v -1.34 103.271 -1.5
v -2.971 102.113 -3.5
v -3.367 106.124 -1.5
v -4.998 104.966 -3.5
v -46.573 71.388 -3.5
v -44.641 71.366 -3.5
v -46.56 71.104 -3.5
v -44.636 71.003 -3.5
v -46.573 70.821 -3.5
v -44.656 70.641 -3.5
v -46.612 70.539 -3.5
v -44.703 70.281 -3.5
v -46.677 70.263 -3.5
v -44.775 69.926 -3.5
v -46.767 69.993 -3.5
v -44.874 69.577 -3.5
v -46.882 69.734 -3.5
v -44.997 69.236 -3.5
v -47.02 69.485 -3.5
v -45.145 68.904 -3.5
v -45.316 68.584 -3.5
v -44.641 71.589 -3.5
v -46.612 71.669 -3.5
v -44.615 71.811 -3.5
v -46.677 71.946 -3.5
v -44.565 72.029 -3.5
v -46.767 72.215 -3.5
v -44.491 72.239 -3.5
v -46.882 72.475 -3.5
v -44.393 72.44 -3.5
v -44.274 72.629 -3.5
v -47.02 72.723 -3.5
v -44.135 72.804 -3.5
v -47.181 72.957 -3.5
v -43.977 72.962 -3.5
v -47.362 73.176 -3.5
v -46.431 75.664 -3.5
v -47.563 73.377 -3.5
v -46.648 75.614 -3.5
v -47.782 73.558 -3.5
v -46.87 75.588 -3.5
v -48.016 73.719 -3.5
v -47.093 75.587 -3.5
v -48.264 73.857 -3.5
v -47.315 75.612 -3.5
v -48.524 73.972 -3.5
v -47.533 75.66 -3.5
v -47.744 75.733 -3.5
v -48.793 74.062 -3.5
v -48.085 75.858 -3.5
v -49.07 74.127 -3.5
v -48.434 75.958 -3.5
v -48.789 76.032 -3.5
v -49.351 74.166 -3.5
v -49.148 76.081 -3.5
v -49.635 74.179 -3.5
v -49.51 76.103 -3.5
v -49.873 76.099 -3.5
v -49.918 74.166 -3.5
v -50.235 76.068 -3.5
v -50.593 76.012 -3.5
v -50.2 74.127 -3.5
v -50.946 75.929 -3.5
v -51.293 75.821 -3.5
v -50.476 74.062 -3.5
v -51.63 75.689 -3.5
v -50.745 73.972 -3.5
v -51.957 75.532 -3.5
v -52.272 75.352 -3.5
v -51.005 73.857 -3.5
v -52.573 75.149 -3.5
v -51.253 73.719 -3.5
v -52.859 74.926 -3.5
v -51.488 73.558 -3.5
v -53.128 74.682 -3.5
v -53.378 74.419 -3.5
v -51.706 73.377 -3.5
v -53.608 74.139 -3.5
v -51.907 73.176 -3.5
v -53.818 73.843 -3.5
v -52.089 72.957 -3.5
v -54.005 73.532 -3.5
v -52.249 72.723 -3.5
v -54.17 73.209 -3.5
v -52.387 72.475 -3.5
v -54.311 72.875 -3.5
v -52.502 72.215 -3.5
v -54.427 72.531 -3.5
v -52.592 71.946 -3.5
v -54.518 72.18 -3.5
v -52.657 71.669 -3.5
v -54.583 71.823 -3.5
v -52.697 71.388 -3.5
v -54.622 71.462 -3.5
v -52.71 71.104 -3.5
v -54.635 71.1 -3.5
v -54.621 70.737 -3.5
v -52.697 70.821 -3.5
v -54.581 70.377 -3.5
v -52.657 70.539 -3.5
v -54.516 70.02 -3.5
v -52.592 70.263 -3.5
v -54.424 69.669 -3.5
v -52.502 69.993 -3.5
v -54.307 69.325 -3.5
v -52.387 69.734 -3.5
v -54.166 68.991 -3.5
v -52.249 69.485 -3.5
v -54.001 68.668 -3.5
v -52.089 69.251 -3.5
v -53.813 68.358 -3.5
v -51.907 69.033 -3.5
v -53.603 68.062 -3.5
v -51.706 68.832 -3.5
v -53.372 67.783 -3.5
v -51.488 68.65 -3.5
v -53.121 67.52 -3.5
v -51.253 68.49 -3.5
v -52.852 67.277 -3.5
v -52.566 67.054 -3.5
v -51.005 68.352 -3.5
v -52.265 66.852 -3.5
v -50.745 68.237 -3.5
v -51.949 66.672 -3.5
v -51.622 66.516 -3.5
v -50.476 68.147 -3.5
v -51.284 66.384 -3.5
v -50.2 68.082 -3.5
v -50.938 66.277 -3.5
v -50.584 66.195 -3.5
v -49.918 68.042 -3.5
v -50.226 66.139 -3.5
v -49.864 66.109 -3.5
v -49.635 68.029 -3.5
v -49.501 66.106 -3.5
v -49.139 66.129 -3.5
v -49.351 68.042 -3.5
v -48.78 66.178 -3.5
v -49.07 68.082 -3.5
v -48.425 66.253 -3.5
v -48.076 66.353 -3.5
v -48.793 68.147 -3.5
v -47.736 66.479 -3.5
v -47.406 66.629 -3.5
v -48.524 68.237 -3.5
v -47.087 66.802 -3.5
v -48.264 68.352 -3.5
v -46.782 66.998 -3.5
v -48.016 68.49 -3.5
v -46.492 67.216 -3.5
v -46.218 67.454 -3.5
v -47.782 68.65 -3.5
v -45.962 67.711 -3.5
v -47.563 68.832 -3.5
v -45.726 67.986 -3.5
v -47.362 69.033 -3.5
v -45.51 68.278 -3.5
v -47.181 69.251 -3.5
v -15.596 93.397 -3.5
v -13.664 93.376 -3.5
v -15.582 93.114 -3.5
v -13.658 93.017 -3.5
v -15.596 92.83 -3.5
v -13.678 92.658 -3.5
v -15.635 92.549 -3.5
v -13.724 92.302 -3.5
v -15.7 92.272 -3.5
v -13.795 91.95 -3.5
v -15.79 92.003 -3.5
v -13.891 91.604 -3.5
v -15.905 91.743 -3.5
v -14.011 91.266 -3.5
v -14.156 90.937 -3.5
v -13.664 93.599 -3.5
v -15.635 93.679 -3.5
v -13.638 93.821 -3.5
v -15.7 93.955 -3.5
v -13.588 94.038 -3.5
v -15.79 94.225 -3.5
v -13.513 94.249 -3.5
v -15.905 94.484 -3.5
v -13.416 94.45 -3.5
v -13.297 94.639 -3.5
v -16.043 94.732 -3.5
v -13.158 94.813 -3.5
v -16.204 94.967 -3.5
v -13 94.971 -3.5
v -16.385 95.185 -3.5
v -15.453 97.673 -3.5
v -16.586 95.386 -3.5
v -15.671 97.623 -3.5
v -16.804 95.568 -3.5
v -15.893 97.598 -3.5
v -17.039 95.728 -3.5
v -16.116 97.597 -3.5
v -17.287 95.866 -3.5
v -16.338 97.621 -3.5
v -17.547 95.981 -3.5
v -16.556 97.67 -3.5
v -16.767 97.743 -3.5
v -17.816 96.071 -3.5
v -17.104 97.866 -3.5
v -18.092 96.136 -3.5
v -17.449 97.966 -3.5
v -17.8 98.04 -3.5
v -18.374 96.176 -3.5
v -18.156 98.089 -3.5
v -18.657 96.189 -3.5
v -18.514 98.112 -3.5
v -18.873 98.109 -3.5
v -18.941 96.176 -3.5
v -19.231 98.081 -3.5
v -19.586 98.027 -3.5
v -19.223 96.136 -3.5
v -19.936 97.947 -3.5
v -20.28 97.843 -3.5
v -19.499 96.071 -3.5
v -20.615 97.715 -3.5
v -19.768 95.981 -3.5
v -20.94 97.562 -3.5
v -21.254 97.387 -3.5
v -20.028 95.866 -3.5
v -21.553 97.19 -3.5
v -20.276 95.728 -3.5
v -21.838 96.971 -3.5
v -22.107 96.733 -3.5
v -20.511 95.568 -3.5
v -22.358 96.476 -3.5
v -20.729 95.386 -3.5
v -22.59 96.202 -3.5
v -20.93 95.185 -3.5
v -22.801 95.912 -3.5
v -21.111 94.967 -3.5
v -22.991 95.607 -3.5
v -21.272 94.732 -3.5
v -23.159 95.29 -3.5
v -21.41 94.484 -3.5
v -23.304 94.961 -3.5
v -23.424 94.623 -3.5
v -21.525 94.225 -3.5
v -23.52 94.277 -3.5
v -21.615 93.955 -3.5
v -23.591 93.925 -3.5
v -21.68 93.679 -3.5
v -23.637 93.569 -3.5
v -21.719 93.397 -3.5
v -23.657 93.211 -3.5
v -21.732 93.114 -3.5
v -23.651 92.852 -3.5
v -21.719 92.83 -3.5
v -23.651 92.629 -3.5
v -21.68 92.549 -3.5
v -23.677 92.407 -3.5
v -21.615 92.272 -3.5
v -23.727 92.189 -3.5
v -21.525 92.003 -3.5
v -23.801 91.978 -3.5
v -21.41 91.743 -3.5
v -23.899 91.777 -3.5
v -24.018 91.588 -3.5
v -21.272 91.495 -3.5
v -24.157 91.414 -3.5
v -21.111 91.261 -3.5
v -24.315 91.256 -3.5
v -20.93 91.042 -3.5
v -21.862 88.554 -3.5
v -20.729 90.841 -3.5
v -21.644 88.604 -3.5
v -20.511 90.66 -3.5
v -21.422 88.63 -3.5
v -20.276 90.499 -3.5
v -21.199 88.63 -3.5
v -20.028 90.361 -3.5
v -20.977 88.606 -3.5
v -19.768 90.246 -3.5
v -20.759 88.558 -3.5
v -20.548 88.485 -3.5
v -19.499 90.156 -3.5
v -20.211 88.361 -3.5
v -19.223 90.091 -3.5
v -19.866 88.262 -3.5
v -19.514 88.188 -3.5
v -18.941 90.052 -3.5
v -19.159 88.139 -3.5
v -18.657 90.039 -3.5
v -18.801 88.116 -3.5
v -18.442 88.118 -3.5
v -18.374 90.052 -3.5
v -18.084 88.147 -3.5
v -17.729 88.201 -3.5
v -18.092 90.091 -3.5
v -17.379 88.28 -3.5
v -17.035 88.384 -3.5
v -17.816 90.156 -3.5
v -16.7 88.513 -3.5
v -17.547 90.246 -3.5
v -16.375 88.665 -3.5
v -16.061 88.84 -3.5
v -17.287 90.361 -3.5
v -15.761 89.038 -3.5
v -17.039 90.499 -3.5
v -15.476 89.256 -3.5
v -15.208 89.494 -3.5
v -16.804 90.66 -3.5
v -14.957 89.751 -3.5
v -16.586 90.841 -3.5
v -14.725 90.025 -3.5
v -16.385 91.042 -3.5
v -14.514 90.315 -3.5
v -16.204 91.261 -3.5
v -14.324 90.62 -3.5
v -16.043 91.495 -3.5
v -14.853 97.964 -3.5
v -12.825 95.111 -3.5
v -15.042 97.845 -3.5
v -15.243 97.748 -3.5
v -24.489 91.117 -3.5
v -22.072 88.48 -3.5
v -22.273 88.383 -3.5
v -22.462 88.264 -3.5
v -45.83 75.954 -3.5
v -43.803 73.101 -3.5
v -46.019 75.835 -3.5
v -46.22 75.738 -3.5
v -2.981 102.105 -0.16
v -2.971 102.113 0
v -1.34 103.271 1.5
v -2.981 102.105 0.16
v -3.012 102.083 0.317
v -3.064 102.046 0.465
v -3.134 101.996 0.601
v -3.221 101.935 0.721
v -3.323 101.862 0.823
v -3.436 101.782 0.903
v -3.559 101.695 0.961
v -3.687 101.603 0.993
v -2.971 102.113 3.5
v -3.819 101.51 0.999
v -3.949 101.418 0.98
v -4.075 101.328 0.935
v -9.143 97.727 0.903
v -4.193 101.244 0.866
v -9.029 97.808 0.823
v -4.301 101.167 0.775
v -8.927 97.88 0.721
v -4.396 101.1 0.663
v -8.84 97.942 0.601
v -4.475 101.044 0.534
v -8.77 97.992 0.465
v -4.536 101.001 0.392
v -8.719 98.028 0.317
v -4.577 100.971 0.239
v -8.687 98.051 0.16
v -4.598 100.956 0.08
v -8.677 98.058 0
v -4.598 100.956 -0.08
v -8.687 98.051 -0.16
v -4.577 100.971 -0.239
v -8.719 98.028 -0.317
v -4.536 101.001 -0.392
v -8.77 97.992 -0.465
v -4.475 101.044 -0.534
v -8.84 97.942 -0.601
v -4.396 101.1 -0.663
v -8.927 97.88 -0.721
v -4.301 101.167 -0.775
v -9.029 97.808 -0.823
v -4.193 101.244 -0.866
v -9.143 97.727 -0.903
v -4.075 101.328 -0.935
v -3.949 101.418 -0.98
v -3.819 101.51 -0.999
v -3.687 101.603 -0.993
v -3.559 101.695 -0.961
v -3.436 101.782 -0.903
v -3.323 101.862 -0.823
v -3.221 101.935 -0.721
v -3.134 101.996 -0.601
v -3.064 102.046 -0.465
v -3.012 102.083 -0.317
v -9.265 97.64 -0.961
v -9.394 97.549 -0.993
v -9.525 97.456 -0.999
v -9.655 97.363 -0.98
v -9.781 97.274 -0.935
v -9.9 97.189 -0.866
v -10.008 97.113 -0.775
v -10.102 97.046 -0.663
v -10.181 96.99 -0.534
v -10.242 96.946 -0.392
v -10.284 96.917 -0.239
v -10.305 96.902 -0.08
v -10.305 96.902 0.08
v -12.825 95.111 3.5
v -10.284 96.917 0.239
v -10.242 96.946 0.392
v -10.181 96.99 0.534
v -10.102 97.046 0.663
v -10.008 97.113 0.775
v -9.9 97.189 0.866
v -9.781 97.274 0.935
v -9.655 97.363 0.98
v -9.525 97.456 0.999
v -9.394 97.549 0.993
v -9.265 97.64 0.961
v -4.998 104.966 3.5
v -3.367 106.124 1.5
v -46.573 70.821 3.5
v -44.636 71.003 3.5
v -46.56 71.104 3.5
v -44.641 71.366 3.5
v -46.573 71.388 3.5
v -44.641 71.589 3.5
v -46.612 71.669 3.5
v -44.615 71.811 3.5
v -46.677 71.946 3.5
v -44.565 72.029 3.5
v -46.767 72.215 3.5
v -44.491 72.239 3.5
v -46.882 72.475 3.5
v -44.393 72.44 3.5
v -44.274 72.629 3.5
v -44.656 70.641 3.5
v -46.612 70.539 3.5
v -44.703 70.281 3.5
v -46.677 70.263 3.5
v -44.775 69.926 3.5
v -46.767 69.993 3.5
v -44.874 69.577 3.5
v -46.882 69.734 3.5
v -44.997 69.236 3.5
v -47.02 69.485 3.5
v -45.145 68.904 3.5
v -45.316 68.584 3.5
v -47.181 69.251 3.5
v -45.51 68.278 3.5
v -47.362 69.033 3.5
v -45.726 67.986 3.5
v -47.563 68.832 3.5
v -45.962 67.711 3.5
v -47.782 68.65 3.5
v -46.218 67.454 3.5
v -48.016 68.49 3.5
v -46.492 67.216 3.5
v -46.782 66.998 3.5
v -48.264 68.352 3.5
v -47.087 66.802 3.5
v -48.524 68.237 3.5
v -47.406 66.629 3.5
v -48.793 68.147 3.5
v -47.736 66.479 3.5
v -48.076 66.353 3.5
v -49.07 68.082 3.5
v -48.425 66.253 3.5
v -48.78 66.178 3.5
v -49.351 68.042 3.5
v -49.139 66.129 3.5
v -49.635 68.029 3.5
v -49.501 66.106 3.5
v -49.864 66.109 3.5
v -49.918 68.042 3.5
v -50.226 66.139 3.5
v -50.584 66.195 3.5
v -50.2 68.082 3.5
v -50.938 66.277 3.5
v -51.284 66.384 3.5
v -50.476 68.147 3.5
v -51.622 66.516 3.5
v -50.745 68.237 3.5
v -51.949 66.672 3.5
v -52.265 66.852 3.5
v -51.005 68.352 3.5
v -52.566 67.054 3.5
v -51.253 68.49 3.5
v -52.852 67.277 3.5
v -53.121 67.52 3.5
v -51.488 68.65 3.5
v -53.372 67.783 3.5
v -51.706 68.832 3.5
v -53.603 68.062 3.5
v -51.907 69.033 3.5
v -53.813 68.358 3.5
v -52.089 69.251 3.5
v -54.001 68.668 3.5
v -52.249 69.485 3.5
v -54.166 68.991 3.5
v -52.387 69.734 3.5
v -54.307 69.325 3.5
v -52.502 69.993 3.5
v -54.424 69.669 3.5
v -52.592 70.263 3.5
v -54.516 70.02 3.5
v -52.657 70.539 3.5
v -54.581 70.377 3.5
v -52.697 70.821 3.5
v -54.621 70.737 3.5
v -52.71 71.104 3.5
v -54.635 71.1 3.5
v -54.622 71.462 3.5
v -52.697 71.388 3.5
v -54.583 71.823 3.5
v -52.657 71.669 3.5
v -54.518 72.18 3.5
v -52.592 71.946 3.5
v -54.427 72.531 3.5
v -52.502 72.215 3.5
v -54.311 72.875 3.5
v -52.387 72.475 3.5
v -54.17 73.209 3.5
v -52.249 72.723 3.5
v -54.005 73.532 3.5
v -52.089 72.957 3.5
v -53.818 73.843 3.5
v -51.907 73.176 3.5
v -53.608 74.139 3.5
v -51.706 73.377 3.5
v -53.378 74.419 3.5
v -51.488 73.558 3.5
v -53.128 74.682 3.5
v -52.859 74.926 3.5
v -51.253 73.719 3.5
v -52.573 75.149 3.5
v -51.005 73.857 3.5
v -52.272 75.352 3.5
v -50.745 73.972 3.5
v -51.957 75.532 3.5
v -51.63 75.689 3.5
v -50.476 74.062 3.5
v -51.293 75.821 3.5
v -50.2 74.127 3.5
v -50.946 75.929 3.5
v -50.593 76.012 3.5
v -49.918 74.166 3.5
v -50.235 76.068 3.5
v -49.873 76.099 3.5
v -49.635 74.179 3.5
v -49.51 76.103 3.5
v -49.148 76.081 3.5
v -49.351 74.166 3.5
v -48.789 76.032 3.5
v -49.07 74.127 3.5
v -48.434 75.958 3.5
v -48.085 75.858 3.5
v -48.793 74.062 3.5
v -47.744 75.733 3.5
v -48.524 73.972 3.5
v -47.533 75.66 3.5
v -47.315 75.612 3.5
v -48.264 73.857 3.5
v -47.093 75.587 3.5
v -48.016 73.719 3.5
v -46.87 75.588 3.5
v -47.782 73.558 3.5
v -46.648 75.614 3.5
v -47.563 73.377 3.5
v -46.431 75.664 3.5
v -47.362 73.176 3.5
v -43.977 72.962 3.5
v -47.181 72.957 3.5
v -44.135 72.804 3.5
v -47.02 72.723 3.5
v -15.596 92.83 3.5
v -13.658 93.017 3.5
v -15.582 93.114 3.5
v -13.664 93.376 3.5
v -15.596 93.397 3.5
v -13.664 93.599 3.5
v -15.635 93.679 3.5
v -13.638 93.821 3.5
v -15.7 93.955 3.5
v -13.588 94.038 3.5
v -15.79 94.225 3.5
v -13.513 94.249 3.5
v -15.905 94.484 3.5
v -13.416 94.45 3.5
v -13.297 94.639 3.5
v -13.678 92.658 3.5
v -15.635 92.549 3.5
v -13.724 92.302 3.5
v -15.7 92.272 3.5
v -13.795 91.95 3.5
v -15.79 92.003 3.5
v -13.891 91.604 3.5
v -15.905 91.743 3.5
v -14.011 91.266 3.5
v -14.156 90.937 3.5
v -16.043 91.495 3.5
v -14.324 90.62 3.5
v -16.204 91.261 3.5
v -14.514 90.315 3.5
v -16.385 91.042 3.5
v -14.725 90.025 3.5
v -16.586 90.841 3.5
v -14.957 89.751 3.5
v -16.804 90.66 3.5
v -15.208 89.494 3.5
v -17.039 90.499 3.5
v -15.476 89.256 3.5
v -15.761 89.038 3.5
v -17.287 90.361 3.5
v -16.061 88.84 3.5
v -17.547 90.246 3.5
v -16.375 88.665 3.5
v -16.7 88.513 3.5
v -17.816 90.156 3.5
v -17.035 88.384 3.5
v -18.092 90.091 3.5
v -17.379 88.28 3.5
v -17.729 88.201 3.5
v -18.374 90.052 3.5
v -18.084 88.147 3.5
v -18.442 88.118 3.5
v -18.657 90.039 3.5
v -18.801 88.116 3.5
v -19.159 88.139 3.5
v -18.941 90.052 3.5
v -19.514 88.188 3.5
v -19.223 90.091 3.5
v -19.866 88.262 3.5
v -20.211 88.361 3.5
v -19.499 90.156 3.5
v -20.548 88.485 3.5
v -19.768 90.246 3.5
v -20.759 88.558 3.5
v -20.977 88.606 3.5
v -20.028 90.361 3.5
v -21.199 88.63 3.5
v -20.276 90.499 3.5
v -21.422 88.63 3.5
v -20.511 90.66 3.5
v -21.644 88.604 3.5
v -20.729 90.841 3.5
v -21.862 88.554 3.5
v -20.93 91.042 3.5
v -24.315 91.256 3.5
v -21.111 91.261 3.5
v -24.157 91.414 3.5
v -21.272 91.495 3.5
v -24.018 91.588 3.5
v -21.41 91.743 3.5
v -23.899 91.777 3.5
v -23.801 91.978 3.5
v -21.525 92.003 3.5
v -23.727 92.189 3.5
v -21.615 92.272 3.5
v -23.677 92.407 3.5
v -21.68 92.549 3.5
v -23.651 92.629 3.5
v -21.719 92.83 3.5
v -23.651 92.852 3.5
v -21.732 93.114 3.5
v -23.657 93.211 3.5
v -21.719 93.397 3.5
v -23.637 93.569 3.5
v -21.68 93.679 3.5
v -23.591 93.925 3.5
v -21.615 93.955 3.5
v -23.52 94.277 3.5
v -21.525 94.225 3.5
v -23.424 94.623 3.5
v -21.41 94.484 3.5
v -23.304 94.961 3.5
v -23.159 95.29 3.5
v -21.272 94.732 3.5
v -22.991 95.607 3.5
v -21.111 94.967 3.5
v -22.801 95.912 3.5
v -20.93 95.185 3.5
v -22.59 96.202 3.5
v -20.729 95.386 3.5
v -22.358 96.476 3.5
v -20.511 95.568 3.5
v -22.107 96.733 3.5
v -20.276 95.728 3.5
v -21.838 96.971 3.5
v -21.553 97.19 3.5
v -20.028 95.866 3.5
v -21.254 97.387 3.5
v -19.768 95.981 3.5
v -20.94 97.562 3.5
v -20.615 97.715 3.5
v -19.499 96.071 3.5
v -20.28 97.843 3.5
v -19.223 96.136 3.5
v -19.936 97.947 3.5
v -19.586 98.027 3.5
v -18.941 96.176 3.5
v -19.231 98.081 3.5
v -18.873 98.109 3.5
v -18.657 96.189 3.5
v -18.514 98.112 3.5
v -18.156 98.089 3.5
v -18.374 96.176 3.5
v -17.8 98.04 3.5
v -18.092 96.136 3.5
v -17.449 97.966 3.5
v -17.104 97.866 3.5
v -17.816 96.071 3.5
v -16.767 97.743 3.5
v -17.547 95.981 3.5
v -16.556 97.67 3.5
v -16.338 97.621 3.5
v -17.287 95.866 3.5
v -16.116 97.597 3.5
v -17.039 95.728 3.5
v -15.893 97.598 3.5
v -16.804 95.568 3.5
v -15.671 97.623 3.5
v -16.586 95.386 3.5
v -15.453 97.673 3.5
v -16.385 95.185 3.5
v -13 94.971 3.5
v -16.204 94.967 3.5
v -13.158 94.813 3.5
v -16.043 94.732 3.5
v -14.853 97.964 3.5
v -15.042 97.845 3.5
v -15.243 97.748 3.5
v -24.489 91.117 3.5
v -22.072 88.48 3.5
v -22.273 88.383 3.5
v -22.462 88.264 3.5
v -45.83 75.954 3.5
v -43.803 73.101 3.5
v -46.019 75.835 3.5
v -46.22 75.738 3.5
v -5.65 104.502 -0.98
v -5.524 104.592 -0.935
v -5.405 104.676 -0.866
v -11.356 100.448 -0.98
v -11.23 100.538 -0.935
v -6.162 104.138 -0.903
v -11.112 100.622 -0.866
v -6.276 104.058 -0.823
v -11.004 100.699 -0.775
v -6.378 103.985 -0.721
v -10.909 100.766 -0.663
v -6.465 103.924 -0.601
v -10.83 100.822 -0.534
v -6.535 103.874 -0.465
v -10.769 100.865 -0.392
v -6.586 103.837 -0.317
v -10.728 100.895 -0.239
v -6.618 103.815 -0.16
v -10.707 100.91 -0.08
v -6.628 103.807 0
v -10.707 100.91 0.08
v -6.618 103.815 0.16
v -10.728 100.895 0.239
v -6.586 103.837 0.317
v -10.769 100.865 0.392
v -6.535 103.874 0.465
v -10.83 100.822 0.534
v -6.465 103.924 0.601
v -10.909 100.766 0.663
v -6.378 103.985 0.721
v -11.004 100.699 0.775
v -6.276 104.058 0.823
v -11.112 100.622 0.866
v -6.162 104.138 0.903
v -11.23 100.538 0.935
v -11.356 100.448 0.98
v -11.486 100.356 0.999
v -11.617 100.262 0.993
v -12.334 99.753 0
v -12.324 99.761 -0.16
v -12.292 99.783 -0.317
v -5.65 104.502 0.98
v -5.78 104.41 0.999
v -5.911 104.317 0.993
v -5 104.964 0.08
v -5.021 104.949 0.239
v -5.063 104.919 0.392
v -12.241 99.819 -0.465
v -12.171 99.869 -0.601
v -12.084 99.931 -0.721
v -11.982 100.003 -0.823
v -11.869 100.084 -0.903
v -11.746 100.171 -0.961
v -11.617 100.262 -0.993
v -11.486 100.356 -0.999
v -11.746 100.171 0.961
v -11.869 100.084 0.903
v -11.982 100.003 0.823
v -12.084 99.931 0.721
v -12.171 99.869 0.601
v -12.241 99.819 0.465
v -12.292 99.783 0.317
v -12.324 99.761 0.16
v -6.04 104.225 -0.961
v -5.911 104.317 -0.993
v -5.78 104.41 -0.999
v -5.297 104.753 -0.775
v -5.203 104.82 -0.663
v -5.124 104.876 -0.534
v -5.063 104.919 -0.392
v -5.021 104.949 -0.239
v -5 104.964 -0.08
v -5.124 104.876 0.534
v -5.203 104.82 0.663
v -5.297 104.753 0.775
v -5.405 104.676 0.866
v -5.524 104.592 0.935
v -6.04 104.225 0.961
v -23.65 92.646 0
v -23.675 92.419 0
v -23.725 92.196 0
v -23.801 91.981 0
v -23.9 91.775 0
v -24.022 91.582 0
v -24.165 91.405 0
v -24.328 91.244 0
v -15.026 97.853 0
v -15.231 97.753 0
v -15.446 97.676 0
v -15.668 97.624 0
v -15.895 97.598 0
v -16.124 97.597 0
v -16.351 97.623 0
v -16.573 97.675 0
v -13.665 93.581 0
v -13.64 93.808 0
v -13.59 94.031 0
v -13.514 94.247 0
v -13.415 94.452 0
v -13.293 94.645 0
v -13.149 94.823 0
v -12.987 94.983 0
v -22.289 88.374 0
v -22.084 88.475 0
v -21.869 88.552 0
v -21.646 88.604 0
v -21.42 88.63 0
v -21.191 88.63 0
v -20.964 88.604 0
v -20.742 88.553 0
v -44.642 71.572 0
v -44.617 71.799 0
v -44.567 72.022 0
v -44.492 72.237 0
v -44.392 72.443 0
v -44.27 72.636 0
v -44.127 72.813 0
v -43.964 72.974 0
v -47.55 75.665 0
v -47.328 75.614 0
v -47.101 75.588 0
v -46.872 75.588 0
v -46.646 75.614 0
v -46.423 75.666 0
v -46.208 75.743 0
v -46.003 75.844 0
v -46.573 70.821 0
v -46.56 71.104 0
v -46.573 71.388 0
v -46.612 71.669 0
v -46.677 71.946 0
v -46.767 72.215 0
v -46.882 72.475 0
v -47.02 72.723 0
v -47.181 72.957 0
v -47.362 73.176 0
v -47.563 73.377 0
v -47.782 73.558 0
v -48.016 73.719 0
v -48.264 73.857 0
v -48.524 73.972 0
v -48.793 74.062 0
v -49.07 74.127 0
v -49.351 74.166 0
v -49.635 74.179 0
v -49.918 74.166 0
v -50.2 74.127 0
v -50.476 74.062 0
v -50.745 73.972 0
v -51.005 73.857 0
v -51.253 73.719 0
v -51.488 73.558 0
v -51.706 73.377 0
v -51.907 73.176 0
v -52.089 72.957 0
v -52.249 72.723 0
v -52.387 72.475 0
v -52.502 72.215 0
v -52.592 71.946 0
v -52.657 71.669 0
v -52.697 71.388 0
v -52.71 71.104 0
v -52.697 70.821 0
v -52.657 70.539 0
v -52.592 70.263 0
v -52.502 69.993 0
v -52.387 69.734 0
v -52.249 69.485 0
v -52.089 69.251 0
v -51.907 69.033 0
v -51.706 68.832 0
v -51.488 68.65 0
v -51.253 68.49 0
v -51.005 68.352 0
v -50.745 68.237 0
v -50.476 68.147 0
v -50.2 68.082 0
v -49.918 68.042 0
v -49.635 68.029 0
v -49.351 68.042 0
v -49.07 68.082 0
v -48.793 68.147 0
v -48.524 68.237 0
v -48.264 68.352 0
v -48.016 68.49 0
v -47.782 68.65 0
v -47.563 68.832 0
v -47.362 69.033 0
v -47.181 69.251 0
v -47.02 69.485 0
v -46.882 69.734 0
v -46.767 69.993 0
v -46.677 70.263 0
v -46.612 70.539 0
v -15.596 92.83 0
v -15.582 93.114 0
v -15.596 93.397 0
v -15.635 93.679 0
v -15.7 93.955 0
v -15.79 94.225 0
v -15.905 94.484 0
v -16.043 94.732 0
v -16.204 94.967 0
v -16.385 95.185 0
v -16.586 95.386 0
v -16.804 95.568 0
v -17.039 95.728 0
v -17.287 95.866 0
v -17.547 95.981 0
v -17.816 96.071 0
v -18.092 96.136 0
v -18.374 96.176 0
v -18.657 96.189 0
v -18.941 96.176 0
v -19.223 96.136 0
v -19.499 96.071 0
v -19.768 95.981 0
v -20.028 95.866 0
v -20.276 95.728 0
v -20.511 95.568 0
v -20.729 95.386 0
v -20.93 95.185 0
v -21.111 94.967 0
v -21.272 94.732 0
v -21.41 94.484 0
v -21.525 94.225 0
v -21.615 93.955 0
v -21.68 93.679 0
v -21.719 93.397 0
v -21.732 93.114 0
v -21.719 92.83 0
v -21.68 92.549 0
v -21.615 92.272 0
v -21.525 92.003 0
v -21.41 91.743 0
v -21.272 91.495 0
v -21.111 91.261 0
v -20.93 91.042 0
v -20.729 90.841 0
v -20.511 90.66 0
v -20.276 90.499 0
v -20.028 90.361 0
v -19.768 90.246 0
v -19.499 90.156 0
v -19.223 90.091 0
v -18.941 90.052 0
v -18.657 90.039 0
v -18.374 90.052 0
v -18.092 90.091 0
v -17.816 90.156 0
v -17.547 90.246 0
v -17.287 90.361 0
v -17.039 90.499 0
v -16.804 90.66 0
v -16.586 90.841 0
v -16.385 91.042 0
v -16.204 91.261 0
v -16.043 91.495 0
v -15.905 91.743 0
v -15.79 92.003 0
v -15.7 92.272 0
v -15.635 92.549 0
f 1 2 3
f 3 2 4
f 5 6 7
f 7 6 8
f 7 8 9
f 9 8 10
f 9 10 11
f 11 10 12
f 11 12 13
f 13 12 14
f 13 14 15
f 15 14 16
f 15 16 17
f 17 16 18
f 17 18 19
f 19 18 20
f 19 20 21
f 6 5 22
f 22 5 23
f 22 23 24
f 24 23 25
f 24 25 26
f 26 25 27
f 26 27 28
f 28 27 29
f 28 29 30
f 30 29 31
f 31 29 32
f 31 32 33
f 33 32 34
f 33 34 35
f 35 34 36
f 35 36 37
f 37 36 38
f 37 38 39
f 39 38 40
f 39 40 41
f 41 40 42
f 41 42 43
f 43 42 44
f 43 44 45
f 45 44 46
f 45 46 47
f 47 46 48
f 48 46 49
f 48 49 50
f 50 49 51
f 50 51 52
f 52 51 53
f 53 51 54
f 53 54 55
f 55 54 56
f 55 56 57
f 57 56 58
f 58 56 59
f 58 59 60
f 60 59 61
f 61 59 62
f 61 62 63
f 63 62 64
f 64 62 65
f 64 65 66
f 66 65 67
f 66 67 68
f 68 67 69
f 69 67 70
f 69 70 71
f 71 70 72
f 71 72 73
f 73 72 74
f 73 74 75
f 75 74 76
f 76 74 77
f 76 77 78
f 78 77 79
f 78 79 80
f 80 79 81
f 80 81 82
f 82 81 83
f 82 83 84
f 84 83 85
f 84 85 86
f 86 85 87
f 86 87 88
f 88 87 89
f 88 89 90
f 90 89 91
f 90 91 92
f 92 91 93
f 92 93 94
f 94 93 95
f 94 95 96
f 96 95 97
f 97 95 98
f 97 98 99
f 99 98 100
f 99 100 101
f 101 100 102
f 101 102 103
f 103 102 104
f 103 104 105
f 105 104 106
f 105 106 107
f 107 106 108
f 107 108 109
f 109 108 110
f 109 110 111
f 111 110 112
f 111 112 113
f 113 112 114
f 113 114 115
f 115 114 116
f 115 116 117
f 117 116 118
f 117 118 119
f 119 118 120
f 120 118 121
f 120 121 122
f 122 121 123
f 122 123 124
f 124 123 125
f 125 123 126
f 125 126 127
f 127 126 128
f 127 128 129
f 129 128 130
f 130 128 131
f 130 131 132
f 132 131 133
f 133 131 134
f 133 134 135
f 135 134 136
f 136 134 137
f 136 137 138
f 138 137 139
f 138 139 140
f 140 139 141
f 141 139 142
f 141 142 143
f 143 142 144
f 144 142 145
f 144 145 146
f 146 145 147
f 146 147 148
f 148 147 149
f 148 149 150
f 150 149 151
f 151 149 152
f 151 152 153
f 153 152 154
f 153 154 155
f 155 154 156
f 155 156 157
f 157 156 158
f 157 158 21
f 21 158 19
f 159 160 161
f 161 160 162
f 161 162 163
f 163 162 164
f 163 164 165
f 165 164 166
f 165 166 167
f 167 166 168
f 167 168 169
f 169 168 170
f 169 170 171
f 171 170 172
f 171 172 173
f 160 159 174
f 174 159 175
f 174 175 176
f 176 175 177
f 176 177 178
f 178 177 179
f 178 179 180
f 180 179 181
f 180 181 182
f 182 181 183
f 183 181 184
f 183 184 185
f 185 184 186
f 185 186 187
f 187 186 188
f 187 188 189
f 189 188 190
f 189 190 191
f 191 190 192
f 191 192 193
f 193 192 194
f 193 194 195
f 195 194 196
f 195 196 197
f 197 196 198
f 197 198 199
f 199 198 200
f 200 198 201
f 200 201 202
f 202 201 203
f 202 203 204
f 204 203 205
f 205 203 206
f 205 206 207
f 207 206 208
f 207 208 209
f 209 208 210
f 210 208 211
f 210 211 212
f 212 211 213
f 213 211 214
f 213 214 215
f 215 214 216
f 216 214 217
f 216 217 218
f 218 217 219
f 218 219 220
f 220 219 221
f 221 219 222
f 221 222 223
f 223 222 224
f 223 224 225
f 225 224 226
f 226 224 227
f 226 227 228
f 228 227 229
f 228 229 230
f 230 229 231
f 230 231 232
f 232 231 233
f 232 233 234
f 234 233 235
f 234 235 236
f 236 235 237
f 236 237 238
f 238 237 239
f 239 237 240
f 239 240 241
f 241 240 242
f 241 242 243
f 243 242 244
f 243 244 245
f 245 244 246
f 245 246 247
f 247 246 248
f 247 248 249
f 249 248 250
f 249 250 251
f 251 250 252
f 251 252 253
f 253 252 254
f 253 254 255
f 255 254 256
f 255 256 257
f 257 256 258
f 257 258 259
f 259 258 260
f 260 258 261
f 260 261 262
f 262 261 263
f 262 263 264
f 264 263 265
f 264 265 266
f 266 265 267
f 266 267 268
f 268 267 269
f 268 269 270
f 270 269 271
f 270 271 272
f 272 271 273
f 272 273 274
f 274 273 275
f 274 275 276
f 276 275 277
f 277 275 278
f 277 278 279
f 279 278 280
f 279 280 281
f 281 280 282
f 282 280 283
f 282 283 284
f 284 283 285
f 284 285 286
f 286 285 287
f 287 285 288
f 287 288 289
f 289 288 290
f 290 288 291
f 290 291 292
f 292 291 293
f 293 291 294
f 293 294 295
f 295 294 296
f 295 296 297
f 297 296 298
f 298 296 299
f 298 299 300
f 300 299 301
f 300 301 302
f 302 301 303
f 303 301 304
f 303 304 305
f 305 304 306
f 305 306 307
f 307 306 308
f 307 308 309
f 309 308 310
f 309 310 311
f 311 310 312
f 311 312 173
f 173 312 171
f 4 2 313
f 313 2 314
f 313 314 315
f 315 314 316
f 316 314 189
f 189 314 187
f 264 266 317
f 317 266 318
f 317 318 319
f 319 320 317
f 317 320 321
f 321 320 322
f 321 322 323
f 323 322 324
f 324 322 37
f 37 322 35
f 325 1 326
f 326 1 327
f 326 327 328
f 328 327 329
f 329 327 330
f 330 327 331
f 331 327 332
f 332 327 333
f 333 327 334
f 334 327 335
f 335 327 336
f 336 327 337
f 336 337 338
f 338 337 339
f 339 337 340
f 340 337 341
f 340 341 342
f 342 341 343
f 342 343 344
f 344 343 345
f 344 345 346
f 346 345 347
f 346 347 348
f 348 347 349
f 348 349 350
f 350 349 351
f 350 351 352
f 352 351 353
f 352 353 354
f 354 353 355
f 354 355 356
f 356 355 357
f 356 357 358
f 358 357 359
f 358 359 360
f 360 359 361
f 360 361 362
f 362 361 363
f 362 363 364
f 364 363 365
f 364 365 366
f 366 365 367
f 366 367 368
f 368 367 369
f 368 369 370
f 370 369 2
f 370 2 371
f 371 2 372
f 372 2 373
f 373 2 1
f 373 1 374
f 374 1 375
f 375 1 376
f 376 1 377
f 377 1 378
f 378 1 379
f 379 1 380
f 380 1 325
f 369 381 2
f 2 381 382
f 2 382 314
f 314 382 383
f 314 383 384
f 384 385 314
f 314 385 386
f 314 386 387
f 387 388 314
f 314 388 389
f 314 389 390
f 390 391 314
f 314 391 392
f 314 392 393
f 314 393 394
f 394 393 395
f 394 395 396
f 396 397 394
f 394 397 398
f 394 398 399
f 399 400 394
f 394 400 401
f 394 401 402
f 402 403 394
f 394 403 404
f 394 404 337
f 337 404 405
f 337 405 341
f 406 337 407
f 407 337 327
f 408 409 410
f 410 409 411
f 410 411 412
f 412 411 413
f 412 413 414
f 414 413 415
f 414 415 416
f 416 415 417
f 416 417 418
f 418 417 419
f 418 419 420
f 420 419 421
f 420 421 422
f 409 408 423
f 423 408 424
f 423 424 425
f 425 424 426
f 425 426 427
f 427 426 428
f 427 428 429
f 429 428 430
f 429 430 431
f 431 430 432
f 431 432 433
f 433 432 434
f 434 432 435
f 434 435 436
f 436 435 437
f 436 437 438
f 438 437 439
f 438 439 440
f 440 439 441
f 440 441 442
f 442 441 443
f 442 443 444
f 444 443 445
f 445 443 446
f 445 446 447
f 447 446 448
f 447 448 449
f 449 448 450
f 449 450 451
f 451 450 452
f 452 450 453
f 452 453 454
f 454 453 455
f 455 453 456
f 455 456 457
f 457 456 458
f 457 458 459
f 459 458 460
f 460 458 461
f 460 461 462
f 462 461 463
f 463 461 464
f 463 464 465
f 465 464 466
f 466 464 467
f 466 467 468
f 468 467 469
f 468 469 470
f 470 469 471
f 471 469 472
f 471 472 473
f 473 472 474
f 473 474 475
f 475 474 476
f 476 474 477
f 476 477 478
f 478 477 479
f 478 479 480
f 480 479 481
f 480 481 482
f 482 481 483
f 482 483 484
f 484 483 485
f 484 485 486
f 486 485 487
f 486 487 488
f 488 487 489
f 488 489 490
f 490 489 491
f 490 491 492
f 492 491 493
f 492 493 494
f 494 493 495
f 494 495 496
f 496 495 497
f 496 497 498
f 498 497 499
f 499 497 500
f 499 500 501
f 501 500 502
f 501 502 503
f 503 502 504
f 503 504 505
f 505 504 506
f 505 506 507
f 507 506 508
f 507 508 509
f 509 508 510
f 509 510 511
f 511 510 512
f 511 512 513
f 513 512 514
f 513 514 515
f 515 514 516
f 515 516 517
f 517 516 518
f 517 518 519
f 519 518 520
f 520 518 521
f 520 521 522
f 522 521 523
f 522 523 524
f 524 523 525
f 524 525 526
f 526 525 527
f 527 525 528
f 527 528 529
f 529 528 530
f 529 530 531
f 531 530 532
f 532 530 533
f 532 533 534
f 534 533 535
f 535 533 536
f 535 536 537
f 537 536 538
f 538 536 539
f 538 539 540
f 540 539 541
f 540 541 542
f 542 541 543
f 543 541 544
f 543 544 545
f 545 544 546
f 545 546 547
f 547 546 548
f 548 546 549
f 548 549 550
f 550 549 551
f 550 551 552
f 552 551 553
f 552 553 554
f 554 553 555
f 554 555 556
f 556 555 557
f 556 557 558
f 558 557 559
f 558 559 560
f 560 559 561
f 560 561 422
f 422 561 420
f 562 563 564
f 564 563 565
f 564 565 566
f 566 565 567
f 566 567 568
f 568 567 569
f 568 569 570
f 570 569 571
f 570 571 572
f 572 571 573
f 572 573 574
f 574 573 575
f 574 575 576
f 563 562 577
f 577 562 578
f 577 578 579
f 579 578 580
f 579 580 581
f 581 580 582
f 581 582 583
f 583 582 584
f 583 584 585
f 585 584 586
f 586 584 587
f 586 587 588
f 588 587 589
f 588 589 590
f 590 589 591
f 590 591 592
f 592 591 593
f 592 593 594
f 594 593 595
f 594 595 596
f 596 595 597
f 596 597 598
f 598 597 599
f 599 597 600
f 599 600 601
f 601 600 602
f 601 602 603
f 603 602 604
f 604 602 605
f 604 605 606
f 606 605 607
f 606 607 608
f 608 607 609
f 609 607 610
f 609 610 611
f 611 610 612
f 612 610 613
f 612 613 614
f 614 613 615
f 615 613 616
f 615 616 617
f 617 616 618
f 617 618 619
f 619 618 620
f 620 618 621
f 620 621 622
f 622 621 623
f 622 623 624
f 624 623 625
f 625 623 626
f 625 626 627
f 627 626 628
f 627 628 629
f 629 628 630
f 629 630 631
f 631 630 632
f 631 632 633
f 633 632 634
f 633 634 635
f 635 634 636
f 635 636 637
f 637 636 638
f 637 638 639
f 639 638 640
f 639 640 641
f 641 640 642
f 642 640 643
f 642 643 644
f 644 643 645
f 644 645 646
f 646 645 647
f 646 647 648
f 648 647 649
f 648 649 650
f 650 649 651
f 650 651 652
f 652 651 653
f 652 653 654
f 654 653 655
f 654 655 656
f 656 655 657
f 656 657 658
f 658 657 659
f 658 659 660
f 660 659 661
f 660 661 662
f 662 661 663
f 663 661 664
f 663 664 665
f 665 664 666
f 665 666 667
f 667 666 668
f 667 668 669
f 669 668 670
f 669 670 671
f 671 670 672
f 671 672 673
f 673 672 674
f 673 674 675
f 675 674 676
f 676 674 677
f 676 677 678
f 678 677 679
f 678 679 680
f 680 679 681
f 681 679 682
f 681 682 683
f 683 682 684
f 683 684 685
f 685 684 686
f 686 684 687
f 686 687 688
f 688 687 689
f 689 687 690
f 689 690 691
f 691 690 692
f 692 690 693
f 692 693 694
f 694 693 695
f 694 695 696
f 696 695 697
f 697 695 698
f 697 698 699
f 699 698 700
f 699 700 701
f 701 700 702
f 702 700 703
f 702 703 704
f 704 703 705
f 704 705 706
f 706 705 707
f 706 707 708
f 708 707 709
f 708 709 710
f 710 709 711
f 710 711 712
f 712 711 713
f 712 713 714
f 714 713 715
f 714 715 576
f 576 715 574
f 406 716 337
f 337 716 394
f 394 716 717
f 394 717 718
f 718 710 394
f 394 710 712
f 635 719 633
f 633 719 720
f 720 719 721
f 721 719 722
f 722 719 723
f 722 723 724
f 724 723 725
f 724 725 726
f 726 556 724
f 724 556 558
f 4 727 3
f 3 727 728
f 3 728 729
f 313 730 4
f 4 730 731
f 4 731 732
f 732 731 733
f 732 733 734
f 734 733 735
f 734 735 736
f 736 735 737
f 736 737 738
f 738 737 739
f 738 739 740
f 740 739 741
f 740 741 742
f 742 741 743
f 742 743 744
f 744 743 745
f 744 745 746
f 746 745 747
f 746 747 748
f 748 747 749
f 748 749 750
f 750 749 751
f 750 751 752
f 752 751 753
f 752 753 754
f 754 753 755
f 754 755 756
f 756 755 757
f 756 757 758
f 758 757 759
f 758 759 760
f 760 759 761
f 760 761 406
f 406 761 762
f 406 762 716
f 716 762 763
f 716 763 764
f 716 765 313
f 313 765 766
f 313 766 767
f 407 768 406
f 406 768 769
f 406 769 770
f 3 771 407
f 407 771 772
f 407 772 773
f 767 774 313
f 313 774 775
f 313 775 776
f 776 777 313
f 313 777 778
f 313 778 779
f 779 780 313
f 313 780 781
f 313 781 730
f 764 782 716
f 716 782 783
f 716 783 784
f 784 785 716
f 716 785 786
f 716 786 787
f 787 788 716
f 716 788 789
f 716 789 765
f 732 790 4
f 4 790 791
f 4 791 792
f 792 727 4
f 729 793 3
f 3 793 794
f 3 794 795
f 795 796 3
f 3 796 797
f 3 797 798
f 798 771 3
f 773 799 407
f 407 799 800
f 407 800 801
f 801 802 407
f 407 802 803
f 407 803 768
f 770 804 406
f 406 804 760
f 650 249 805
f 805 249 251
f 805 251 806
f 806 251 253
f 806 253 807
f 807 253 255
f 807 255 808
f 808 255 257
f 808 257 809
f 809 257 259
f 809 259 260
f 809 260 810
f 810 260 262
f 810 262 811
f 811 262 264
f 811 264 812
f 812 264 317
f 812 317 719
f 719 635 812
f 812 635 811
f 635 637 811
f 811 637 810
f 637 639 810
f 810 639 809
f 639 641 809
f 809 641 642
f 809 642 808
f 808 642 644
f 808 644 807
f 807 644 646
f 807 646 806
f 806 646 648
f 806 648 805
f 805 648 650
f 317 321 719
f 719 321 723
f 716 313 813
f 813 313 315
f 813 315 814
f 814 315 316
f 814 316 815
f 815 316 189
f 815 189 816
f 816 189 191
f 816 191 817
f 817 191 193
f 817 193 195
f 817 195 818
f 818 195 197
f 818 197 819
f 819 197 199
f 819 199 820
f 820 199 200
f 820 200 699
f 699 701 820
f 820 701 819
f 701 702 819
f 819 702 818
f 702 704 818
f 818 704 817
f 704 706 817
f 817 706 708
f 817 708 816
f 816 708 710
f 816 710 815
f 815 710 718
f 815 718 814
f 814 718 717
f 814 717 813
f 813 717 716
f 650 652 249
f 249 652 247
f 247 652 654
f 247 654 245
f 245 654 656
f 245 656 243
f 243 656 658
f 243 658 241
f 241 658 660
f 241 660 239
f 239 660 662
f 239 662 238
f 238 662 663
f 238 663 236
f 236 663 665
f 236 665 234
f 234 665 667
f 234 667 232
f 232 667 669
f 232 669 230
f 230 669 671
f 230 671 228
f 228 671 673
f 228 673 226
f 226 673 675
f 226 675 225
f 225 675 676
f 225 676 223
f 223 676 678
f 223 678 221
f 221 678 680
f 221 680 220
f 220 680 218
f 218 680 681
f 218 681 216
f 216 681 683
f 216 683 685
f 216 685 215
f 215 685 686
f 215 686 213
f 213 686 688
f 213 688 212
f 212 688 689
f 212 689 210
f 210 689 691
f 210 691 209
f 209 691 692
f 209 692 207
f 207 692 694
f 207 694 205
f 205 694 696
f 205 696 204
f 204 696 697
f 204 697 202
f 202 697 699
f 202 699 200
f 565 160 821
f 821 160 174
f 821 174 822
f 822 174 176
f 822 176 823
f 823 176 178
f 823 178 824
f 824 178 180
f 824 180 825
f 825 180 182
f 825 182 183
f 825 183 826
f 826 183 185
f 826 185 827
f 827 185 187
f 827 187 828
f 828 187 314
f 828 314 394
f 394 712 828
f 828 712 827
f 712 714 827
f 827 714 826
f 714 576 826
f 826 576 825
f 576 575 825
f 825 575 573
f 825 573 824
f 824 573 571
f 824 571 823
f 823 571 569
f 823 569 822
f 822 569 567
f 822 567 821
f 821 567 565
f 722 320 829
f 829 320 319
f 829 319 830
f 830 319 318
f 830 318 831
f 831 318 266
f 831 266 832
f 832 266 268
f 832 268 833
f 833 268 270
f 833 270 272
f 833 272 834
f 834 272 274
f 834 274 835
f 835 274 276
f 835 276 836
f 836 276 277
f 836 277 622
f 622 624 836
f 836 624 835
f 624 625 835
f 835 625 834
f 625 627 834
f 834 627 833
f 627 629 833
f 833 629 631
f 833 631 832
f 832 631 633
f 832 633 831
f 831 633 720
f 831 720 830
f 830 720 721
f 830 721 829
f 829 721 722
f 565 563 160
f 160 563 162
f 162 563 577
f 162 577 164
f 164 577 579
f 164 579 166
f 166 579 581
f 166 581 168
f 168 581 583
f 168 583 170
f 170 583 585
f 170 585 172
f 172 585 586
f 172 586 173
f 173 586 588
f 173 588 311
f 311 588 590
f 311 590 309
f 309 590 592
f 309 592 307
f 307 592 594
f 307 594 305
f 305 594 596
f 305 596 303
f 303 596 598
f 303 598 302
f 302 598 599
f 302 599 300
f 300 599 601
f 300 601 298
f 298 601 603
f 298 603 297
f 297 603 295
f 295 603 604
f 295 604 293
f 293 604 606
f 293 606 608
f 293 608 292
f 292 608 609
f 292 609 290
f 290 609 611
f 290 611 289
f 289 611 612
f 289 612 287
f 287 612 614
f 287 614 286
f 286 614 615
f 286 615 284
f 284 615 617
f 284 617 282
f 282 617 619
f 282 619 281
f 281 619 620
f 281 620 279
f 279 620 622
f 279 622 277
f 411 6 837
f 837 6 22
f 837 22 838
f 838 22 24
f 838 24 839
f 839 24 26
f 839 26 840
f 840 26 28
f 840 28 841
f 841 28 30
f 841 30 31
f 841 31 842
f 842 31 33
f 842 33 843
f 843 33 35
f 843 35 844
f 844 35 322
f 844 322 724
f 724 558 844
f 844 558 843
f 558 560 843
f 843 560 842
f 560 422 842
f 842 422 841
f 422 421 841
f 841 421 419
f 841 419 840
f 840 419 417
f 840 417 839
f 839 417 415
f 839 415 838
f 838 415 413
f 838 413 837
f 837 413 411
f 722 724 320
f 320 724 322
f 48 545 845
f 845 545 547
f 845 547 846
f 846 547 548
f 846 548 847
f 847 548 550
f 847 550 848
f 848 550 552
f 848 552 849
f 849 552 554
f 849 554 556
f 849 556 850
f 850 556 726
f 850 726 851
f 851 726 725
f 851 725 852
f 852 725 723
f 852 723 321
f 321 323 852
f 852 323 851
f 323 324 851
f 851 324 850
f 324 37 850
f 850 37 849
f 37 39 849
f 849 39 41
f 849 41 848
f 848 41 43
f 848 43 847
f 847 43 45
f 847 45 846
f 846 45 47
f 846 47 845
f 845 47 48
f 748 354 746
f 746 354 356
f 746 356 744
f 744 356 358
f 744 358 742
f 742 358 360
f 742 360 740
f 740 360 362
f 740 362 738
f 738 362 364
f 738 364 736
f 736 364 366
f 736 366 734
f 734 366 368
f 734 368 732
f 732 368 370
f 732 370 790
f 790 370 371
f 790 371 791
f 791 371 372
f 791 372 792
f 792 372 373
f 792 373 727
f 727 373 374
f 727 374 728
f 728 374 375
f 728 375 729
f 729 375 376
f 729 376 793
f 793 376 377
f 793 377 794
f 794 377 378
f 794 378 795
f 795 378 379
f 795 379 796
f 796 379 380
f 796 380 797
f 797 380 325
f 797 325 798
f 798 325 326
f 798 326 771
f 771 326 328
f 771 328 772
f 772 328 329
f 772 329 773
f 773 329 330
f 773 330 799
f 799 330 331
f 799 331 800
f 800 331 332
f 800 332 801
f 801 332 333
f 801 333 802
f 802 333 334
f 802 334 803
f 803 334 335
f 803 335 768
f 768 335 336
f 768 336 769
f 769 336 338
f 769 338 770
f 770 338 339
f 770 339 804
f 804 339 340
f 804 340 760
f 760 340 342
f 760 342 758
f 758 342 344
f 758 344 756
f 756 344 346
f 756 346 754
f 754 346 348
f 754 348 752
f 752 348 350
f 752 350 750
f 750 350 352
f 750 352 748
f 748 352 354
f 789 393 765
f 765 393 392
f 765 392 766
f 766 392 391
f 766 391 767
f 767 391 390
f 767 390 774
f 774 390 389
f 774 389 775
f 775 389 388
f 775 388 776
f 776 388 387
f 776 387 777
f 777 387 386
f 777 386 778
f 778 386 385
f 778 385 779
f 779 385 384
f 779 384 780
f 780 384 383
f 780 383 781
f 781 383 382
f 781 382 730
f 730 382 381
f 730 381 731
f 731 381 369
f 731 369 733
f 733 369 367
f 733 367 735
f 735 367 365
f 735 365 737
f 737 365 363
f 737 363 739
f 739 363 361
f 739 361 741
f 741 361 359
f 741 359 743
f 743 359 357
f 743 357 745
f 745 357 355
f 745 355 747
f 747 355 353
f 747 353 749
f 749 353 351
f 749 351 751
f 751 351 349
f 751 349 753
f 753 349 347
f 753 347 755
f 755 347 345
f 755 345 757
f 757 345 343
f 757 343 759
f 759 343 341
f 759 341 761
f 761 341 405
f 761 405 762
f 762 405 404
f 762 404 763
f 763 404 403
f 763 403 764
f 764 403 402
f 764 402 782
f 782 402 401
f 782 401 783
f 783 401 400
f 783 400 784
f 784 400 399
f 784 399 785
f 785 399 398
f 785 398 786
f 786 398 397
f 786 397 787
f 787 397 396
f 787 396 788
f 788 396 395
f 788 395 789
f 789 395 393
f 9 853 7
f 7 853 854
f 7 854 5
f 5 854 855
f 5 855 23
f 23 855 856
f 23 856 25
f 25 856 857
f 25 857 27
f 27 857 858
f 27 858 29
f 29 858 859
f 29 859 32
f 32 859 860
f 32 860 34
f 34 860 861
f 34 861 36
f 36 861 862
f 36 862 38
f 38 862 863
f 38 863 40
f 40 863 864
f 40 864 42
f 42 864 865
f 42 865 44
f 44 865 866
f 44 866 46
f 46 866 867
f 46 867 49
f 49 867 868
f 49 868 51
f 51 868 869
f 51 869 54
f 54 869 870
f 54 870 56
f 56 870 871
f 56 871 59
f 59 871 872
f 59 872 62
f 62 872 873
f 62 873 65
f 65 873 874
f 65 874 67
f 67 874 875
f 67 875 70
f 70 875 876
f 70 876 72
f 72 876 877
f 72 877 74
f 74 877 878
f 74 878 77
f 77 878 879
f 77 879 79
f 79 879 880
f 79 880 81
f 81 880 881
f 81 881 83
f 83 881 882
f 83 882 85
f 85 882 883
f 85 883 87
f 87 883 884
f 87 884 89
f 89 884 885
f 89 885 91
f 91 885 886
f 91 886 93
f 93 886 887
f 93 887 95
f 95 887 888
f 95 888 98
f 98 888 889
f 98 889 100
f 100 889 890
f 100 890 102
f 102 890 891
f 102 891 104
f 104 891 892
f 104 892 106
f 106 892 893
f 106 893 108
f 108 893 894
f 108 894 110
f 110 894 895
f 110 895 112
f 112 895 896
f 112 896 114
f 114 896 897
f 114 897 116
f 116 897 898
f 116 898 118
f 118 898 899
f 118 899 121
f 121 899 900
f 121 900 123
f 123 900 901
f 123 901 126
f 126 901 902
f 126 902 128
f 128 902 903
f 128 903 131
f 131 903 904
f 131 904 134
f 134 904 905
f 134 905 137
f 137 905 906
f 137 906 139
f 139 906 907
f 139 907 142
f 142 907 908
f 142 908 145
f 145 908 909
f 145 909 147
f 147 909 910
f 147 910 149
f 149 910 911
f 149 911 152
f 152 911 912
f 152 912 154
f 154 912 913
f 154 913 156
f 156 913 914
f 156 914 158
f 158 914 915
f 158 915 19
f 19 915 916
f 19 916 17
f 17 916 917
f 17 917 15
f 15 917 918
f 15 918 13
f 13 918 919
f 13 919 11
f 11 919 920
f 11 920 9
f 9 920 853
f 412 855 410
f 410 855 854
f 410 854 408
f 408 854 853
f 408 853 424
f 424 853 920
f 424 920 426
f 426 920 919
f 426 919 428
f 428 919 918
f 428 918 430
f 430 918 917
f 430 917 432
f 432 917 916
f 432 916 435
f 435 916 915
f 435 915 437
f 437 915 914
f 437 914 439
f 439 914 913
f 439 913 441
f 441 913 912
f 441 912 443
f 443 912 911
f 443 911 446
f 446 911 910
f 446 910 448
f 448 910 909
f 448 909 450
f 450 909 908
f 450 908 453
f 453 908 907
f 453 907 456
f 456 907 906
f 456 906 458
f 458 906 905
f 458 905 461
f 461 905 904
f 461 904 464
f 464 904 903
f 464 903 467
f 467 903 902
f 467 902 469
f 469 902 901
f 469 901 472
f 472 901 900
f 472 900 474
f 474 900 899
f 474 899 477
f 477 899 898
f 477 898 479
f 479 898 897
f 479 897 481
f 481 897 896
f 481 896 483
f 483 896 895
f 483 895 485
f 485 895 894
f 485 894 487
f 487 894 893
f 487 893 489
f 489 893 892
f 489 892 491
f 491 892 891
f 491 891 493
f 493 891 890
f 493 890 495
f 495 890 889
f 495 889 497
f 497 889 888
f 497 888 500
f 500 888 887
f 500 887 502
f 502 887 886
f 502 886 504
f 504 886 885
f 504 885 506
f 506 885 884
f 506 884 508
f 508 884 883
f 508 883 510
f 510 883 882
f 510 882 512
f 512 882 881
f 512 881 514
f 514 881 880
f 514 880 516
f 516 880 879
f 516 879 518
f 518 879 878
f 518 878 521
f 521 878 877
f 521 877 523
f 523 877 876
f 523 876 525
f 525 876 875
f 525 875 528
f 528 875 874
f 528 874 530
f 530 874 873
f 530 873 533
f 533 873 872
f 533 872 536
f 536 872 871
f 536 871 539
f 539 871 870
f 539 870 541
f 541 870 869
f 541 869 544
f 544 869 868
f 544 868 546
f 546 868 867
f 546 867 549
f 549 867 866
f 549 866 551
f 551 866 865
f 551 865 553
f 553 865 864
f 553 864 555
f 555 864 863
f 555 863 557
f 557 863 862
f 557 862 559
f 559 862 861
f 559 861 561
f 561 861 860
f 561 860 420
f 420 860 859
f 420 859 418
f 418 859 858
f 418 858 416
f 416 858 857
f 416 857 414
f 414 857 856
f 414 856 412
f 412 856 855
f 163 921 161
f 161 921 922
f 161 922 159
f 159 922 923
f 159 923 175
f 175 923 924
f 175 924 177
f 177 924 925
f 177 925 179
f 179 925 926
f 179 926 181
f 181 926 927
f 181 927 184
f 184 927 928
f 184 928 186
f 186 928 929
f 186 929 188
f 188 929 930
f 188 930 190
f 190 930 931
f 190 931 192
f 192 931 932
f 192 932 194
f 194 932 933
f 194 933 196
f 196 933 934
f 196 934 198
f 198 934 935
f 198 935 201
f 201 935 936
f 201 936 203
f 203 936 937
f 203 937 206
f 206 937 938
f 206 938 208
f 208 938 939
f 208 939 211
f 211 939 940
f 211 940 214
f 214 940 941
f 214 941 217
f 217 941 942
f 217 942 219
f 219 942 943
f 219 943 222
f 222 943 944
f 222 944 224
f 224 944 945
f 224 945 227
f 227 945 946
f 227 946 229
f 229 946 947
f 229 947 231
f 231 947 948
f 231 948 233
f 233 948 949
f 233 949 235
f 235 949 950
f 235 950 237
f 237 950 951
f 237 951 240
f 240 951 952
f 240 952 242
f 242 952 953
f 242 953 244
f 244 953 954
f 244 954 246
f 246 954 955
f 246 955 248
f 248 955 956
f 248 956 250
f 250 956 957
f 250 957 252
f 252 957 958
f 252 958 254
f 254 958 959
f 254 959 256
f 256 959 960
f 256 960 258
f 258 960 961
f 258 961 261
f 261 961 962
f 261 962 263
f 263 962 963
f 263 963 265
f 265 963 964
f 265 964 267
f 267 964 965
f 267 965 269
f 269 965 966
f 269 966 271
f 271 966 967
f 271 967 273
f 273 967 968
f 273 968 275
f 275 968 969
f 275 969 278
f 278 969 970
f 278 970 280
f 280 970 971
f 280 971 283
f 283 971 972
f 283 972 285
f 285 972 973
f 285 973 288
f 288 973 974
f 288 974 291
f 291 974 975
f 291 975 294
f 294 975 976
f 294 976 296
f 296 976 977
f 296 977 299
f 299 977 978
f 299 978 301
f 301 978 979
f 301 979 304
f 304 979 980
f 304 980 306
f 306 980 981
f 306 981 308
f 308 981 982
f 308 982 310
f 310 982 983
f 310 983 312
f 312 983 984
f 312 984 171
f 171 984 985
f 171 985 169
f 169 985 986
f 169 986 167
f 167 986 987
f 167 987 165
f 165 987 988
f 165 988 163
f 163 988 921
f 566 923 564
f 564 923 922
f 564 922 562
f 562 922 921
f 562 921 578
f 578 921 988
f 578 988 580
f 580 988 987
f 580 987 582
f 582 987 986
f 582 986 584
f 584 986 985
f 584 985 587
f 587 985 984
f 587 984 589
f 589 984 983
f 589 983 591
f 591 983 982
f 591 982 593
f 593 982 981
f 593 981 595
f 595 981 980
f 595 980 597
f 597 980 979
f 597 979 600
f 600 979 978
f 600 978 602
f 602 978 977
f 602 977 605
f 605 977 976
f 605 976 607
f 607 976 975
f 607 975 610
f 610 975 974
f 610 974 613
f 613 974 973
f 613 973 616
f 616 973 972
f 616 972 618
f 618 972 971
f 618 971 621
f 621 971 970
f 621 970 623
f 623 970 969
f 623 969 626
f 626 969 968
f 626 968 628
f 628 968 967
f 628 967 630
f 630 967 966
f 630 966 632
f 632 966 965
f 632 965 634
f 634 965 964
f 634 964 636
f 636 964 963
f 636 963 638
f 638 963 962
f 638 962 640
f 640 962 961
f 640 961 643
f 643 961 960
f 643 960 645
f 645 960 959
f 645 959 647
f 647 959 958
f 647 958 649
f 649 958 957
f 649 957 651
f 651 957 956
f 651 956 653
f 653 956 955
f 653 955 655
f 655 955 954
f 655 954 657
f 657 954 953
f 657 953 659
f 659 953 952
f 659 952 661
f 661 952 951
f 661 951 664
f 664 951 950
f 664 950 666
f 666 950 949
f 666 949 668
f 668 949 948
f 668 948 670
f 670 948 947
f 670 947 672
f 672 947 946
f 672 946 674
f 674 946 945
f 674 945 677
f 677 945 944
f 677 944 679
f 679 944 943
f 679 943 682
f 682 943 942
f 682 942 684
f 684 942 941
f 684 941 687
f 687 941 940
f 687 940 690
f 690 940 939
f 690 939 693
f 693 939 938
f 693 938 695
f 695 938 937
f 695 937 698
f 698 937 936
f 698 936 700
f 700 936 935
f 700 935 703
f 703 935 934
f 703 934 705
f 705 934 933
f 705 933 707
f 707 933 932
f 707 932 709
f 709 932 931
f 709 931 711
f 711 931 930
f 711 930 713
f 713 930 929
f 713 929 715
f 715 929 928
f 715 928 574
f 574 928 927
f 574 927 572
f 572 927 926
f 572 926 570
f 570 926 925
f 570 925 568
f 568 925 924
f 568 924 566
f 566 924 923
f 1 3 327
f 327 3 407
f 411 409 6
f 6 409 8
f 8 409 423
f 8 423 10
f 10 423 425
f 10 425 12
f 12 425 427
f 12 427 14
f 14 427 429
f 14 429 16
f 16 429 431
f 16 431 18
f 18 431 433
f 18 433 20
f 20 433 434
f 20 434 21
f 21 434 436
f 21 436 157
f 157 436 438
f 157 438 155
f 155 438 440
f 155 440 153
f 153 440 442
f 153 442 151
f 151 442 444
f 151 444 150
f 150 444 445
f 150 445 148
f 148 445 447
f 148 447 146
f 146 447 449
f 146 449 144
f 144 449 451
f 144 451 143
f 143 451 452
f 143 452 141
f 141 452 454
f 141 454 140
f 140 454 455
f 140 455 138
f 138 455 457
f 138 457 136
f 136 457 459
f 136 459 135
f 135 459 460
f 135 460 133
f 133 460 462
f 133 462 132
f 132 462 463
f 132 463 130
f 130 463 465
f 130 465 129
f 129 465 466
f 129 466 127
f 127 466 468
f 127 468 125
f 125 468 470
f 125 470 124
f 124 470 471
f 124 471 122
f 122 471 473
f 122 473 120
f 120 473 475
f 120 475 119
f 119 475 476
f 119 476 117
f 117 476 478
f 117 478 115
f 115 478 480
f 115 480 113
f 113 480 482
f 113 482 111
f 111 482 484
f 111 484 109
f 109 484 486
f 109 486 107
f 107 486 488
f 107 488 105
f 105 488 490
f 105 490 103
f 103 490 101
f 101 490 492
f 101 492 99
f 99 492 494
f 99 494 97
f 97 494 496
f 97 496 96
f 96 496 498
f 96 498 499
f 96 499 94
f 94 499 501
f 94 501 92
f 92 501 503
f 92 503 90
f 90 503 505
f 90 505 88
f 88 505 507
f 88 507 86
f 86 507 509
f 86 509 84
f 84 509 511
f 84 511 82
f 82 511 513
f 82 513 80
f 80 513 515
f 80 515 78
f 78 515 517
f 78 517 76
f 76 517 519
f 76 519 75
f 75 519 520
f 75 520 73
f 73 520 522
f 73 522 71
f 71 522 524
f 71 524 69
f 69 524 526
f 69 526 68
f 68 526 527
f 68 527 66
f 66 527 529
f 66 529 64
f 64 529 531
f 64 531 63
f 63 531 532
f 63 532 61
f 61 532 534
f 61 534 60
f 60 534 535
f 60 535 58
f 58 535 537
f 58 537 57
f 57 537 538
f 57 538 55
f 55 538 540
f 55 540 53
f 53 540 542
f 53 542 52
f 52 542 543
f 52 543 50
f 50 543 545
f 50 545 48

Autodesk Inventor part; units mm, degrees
ref_plane "YZ Plane" through (0, 0, 0) normal (1, 0, 0) x (0, 1, 0)
ref_plane "XZ Plane" through (0, 0, 0) normal (0, 1, 0) x (-1, 0, 0)
ref_plane "XY Plane" through (0, 0, 0) normal (0, 0, 1) x (1, 0, 0)
sketch "Sketch1" plane through (0, 0, 0) normal (0, 0, 1) x (1, 0, 0)
  line L0 (-49.634624, 71.104228) -> (-18.657482, 93.113696)
  circle A0 centre (-49.634624, 71.104228) radius 5
  circle A1 centre (-18.657482, 93.113696) radius 5
  circle A2 centre (-49.634624, 71.104228) radius 3.075
  circle A3 centre (-18.657482, 93.113696) radius 3.075
  line L1 (-49.634624, 71.104228) -> (-18.657482, 93.113696) construction
  line L2 (-48.62103, 69.677649) -> (-17.643888, 91.687117)
  line L3 (-19.671076, 94.540275) -> (-50.648218, 72.530807)
  arc A4 (-50.648218, 72.530807) -> (-48.62103, 69.677649) centre (-49.634624, 71.104228) ccw
  arc A5 (-17.643888, 91.687117) -> (-19.671076, 94.540275) centre (-18.657482, 93.113696) ccw
  line L4 (-18.657482, 93.113696) -> (-2.353723, 104.697626) construction
  line L5 (-17.643888, 91.687117) -> (-1.340129, 103.271047)
  line L6 (-3.367317, 106.124205) -> (-19.671076, 94.540275)
  arc A6 (-19.671076, 94.540275) -> (-17.643888, 91.687117) centre (-18.657482, 93.113696) ccw
  arc A7 (-1.340129, 103.271047) -> (-3.367317, 106.124205) centre (-2.353723, 104.697626) ccw
  line L7 (-2.353723, 104.697626) -> (-3.367317, 106.124205)
  line L8 (-2.353723, 104.697626) -> (-1.340129, 103.271047)
  point P0 (0, 0)
  point P1 (-34.146053, 82.108962)
  point P2 (-10.505602, 98.905661)
  point P3 (-44.802894, 72.39046)
  point P4 (-21.462023, 88.974306)
  point P5 (-13.825752, 94.399928)
  point P6 (-15.85294, 97.253085)
  point P7 (-23.489211, 91.827464)
  point P8 (-46.830082, 75.243618)
  dimension "d0" = 10
  dimension "d1" = 10
  dimension "d2" = 6.15
  dimension "d3" = 6.15
  dimension "d4" = 3.5
  dimension "d5" = 20
  dimension "d6" = 3.5
sketch "Sketch1 outline for Extrusion1" plane through (0, 0, 0) normal (0, 0, 1) x (1, 0, 0)
  line L0 (-44.802894, 72.39046) -> (-21.462023, 88.974306)
  arc A0 (-46.830082, 75.243618) -> (-44.802894, 72.39046) centre (-49.634624, 71.104228) ccw
  arc A1 (-21.462023, 88.974306) -> (-13.825752, 94.399928) centre (-18.657482, 93.113696) ccw
  line L1 (-23.489211, 91.827464) -> (-46.830082, 75.243618)
  line L2 (-13.825752, 94.399928) -> (-1.340129, 103.271047)
  arc A2 (-15.85294, 97.253085) -> (-23.489211, 91.827464) centre (-18.657482, 93.113696) ccw
  line L3 (-1.340129, 103.271047) -> (-2.353723, 104.697626)
  line L4 (-3.367317, 106.124205) -> (-15.85294, 97.253085)
  line L5 (-2.353723, 104.697626) -> (-3.367317, 106.124205)
  circle A3 centre (-49.634624, 71.104228) radius 3.075
  circle A4 centre (-18.657482, 93.113696) radius 3.075
extrude "Extrusion1" add sketch "Sketch1 outline for Extrusion1" along normal mid plane 7
sketch "Sketch2" plane through (-1.340129, 103.271047, -3.5) normal (0.5791965, -0.8151879, 0) x (0.8151879, 0.5791965, 0)
  line L0 (0, 0) -> (0, 7)
  line L1 (-15.316252, 7) -> (0, 7)
  line L2 (-15.316252, 0) -> (-15.316252, 7)
  line L3 (0, 0) -> (-15.316252, 0)
  line L4 (0, 0) -> (0, 7)
  line L5 (0, 3.5) -> (-8, 3.5)
  line L6 (-8, 3.5) -> (-3, 3.5)
  circle A0 centre (-3, 3.5) radius 1
  line L7 (-8, 3.5) -> (-10, 3.5)
  circle A1 centre (-10, 3.5) radius 1
  point P0 (-58.721774, 3.5)
  dimension "d9" = 8
  dimension "d10" = 5
  dimension "d11" = 2
  dimension "d12" = 2
  dimension "d13" = 2
sketch "Sketch2 outline for Extrusion2" plane through (-1.340129, 103.271047, -3.5) normal (0.5791965, -0.8151879, 0) x (0.8151879, 0.5791965, 0)
  circle A0 centre (-3, 3.5) radius 1
  circle A1 centre (-10, 3.5) radius 1
extrude "Extrusion2" cut sketch "Sketch2 outline for Extrusion2" against normal blind 5
fillet "Fillet1" radius 2 6 edges at (-46.8301, 75.2436, 0) (-44.8029, 72.3905, 0) (-21.462, 88.9743, 0) (-13.8258, 94.3999, 0) (-15.8529, 97.2531, 0) (-23.4892, 91.8275, 0)
chamfer "Chamfer1" distance 2 angle 45 2 edges at (-2.3537, 104.6976, 3.5) (-2.3537, 104.6976, -3.5)
properties part number "leg_link_1"
